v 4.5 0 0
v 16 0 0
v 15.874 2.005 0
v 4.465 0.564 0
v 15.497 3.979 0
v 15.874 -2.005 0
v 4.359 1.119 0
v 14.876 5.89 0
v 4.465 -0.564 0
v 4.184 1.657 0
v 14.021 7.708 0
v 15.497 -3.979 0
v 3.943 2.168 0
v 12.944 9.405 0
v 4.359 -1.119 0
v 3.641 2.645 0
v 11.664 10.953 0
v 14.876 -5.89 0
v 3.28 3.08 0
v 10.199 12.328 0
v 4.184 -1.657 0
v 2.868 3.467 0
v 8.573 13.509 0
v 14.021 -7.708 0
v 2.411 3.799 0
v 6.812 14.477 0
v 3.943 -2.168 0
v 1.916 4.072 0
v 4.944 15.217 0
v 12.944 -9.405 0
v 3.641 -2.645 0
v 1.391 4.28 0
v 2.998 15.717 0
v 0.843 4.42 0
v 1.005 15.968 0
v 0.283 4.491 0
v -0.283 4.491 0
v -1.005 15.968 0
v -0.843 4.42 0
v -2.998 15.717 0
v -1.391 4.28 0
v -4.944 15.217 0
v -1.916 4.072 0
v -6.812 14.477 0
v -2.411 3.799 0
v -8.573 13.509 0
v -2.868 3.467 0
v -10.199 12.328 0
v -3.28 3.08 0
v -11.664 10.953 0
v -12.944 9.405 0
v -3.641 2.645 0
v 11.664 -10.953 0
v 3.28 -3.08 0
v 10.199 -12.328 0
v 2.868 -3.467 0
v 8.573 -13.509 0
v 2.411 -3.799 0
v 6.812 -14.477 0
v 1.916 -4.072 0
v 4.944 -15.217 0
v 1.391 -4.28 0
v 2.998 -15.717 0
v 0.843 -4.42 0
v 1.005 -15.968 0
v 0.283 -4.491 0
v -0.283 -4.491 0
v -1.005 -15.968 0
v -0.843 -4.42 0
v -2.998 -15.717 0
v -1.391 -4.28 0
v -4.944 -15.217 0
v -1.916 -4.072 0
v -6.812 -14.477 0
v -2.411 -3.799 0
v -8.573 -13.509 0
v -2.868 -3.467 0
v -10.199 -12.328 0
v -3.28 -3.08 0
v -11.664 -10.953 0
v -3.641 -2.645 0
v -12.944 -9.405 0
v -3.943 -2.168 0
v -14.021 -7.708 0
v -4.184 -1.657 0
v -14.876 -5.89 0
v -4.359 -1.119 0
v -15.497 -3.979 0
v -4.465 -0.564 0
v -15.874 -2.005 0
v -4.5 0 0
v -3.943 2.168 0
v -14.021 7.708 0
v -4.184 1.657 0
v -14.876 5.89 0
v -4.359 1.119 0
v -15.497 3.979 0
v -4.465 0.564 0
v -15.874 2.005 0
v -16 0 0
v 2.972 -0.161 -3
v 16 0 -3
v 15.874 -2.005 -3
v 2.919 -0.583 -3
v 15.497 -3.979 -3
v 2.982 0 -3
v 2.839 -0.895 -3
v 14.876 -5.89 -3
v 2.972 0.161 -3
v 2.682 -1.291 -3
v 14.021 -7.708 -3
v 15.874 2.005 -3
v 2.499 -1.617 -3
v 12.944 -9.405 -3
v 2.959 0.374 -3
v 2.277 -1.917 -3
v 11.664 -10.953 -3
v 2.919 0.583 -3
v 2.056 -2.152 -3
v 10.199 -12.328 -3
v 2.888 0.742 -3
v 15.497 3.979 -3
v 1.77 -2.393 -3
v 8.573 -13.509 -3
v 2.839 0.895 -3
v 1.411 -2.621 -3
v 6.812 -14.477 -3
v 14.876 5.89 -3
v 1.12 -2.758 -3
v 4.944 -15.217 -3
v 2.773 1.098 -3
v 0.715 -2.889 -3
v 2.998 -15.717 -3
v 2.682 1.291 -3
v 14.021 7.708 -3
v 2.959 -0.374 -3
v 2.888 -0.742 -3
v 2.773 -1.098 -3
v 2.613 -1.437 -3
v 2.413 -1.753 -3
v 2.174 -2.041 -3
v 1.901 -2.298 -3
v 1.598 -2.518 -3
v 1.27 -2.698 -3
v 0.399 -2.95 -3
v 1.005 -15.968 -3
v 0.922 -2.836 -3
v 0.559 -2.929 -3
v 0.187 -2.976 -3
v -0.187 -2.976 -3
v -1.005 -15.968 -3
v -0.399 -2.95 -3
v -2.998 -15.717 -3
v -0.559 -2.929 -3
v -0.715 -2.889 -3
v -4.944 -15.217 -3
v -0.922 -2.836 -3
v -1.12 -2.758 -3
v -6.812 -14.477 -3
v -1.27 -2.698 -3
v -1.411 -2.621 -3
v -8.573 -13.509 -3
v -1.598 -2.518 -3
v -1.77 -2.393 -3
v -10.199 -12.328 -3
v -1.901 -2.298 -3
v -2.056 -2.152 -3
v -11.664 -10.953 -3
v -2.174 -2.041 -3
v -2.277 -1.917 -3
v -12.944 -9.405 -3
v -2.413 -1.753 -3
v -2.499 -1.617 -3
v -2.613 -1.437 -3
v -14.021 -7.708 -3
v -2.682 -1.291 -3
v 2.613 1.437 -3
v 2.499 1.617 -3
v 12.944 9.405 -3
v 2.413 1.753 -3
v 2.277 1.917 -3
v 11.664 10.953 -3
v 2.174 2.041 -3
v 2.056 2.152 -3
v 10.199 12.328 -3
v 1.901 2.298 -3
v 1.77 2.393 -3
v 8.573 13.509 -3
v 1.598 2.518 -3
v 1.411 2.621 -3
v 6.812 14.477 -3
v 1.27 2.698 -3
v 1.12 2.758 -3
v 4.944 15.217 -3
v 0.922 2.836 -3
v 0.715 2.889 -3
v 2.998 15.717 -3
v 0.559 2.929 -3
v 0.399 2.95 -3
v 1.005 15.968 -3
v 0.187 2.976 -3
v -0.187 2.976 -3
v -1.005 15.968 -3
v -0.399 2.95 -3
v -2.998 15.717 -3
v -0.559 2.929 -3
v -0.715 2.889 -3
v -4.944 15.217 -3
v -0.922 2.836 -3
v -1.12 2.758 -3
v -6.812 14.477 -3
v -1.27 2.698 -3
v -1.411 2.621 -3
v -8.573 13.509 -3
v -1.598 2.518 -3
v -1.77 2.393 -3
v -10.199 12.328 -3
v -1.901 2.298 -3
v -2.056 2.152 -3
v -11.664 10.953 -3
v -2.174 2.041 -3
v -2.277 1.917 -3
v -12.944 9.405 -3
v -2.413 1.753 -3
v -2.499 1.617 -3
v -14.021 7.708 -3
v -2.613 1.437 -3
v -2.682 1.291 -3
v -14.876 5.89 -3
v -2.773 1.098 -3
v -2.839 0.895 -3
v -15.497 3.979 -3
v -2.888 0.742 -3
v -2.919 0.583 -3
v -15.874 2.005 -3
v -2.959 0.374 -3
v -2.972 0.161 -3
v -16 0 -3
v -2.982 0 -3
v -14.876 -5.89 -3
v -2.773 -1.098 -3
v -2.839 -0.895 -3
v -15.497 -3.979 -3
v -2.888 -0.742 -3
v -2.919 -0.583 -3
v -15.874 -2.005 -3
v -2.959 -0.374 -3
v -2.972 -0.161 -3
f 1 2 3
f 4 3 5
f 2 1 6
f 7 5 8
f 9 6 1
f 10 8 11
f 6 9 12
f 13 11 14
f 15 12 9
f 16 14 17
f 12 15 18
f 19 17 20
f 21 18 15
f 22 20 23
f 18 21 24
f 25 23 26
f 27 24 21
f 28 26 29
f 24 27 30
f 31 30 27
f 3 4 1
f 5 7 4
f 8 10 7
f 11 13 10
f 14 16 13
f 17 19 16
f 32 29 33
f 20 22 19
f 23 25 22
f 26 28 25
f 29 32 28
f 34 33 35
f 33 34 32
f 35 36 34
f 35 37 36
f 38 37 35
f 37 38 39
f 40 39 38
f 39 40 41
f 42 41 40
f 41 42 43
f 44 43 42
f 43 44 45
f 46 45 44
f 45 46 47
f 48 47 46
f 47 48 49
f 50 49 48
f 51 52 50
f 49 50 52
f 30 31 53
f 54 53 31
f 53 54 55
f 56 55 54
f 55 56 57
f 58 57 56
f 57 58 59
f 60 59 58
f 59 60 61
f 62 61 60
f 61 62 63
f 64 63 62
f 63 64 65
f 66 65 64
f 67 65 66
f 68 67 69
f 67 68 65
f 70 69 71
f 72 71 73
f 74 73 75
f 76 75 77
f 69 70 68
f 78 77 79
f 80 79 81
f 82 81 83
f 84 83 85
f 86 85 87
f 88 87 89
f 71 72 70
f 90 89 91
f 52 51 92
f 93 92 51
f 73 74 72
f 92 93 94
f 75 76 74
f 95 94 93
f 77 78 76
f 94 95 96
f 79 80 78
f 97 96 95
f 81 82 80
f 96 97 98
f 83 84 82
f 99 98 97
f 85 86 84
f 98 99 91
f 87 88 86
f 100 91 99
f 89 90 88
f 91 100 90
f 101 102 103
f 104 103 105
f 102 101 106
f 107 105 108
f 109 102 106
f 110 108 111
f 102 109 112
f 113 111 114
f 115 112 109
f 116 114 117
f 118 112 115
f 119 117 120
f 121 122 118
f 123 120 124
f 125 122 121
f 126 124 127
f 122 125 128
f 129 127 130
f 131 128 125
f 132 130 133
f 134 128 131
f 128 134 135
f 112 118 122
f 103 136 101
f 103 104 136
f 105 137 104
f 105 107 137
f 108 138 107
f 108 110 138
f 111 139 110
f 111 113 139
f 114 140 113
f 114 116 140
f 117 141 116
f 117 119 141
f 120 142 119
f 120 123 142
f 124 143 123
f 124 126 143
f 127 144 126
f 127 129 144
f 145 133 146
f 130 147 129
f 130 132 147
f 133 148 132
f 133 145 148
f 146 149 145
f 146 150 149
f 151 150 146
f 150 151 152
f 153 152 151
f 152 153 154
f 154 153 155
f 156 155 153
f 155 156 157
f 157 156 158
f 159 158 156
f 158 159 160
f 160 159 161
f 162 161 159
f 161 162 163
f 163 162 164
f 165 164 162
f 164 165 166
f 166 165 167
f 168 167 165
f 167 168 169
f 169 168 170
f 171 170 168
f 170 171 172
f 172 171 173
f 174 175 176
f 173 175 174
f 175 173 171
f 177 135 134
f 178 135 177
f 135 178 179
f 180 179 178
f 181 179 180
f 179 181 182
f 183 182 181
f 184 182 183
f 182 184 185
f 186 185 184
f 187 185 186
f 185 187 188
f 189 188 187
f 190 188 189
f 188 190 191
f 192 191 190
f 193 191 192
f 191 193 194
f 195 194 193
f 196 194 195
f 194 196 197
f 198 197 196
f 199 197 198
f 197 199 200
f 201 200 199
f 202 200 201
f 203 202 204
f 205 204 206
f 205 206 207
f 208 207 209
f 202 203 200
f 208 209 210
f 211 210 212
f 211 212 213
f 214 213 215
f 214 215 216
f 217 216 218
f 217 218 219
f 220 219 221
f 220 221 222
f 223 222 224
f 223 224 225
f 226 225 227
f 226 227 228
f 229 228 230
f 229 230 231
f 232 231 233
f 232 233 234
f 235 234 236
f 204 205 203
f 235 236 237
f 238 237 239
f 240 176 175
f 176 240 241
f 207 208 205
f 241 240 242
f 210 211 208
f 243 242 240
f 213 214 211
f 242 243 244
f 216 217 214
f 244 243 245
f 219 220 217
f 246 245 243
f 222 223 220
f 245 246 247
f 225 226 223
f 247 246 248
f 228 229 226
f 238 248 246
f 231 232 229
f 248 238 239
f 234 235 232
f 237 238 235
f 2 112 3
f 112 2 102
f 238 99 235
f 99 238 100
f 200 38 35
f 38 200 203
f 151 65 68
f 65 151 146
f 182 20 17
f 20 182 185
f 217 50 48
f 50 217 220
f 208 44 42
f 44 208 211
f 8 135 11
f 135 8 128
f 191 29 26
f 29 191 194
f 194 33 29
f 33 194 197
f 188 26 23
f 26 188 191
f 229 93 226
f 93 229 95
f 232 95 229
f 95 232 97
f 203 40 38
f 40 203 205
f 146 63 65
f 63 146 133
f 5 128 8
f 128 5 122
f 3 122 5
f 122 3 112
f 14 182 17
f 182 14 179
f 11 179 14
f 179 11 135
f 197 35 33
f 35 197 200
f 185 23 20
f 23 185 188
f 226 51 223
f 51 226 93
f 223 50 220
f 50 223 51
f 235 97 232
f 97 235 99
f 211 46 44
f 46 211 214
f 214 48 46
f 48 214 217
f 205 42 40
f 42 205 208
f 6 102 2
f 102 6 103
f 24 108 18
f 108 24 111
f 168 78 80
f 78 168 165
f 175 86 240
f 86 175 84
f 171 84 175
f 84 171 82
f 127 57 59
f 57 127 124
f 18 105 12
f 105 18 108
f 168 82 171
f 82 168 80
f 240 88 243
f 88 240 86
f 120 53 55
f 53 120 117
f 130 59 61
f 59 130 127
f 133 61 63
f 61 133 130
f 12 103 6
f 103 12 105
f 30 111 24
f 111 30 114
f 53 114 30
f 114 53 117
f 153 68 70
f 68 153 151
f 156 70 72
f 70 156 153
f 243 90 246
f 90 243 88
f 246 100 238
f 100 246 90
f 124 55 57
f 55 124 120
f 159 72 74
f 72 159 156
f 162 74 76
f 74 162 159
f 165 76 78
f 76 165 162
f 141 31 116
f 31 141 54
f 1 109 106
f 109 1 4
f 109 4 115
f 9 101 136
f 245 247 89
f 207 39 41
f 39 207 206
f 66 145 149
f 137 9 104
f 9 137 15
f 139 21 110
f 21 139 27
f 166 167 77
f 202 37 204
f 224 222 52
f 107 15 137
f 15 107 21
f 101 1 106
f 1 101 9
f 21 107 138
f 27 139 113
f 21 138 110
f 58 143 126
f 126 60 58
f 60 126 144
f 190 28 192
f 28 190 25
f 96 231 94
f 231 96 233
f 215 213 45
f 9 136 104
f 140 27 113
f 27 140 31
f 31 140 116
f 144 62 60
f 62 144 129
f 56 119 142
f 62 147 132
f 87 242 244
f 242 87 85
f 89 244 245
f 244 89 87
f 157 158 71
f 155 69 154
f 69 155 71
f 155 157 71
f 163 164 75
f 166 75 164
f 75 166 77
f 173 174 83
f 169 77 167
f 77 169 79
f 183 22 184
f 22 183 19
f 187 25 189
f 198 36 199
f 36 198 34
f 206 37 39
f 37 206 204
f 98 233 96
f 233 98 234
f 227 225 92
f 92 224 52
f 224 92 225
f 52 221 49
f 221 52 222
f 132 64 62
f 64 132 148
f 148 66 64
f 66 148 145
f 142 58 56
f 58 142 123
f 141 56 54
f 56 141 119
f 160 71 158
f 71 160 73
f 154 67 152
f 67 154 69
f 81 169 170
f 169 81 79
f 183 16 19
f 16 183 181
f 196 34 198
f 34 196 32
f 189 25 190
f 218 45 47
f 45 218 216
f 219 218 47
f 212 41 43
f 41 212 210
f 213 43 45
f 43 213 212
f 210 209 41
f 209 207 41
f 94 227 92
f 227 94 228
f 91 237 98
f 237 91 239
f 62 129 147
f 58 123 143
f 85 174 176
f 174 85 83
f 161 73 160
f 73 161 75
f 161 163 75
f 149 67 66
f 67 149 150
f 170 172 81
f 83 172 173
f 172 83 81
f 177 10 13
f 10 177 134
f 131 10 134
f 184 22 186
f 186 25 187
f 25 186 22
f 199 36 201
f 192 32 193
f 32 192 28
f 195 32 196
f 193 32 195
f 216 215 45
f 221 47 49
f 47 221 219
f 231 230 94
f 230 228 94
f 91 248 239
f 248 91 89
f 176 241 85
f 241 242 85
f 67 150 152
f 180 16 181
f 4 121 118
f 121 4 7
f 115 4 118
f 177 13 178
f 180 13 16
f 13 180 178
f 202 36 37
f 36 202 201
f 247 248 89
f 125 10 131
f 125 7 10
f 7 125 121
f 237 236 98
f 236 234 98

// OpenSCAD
$fn = 50;


difference() {
	union() {
		translate(v = [0, 0, -3.0000000000]) {
			cylinder(h = 3, r = 7.0000000000);
		}
		translate(v = [0, 0, -3.0000000000]) {
			cylinder(h = 3, r = 16.0000000000);
		}
	}
	union() {
		translate(v = [0, 0, 0]) {
			rotate(a = [0, 0, 0]) {
				difference() {
					union() {
						#translate(v = [0, 0, -3.0000000000]) {
							cylinder(h = 3, r = 2.2500000000);
						}
						#translate(v = [0, 0, -4.2000000000]) {
							cylinder(h = 4.2000000000, r1 = 2.3750000000, r2 = 4.5000000000);
						}
						#translate(v = [0, 0, -3.0000000000]) {
							cylinder(h = 3, r = 2.3750000000);
						}
						#translate(v = [0, 0, -3.0000000000]) {
							cylinder(h = 3, r = 2.2500000000);
						}
					}
					union();
				}
			}
		}
	}
}
